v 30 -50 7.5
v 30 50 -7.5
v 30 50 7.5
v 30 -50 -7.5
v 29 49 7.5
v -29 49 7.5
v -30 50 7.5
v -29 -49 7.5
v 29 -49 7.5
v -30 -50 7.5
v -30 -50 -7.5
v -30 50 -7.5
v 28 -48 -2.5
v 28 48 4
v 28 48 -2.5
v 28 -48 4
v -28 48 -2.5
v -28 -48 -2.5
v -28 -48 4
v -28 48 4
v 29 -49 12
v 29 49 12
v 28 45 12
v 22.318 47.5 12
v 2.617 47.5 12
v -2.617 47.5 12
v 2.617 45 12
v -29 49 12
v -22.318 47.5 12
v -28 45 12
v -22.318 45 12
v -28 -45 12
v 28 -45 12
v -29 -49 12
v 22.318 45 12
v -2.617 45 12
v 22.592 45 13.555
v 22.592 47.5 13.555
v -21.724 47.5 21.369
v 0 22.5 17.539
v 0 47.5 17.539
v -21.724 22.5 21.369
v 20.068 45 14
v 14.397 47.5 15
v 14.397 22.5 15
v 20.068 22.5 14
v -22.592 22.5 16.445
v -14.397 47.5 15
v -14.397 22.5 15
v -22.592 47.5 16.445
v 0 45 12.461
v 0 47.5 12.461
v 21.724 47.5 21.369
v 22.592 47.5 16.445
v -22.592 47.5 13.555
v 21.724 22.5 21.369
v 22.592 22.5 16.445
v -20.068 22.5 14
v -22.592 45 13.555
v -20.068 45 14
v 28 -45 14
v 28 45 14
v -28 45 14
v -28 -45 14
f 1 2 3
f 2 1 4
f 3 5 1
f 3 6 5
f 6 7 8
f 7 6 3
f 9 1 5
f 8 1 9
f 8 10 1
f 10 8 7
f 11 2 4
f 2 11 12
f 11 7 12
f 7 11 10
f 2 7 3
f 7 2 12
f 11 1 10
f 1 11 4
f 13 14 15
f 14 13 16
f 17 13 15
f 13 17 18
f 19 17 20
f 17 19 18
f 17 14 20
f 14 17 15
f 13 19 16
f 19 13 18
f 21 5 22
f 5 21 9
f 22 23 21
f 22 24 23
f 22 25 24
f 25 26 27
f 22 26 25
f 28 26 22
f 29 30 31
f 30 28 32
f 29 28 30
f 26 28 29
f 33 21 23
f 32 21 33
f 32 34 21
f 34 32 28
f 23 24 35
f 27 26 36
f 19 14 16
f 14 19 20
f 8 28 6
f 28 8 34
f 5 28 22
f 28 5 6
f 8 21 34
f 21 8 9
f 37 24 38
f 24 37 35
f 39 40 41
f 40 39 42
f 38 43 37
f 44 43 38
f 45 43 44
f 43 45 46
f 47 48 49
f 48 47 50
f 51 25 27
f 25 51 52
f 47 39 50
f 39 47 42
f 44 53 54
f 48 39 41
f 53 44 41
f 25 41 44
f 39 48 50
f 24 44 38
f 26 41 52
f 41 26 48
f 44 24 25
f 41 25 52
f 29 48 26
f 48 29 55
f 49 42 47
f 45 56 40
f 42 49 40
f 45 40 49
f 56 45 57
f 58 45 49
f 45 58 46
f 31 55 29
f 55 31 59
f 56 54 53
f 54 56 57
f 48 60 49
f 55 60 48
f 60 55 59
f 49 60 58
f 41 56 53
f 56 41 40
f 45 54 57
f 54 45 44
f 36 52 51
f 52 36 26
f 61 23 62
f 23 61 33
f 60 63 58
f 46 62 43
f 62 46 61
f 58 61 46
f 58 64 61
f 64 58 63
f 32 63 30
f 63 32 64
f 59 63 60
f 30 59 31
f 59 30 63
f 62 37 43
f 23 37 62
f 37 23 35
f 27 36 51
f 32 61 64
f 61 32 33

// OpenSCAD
$fn = 32;

// Bed Frame
difference() {
    cube([60, 100, 15], center = true);
    translate([0, 0, 5])
        cube([56, 96, 15], center = true);
}

// Mattress
translate([0, 0, 8])
    cube([58, 98, 8], center = true);

// Pillows
translate([0, 35, 15])
    rotate([0, 10, 0])
    cube([45, 25, 5], center = true);

translate([0, 35, 15])
    rotate([0, -10, 0])
    cube([45, 25, 5], center = true);

// Blanket (Folded)
translate([0, 0, 12])
    cube([56, 90, 4], center = true);
